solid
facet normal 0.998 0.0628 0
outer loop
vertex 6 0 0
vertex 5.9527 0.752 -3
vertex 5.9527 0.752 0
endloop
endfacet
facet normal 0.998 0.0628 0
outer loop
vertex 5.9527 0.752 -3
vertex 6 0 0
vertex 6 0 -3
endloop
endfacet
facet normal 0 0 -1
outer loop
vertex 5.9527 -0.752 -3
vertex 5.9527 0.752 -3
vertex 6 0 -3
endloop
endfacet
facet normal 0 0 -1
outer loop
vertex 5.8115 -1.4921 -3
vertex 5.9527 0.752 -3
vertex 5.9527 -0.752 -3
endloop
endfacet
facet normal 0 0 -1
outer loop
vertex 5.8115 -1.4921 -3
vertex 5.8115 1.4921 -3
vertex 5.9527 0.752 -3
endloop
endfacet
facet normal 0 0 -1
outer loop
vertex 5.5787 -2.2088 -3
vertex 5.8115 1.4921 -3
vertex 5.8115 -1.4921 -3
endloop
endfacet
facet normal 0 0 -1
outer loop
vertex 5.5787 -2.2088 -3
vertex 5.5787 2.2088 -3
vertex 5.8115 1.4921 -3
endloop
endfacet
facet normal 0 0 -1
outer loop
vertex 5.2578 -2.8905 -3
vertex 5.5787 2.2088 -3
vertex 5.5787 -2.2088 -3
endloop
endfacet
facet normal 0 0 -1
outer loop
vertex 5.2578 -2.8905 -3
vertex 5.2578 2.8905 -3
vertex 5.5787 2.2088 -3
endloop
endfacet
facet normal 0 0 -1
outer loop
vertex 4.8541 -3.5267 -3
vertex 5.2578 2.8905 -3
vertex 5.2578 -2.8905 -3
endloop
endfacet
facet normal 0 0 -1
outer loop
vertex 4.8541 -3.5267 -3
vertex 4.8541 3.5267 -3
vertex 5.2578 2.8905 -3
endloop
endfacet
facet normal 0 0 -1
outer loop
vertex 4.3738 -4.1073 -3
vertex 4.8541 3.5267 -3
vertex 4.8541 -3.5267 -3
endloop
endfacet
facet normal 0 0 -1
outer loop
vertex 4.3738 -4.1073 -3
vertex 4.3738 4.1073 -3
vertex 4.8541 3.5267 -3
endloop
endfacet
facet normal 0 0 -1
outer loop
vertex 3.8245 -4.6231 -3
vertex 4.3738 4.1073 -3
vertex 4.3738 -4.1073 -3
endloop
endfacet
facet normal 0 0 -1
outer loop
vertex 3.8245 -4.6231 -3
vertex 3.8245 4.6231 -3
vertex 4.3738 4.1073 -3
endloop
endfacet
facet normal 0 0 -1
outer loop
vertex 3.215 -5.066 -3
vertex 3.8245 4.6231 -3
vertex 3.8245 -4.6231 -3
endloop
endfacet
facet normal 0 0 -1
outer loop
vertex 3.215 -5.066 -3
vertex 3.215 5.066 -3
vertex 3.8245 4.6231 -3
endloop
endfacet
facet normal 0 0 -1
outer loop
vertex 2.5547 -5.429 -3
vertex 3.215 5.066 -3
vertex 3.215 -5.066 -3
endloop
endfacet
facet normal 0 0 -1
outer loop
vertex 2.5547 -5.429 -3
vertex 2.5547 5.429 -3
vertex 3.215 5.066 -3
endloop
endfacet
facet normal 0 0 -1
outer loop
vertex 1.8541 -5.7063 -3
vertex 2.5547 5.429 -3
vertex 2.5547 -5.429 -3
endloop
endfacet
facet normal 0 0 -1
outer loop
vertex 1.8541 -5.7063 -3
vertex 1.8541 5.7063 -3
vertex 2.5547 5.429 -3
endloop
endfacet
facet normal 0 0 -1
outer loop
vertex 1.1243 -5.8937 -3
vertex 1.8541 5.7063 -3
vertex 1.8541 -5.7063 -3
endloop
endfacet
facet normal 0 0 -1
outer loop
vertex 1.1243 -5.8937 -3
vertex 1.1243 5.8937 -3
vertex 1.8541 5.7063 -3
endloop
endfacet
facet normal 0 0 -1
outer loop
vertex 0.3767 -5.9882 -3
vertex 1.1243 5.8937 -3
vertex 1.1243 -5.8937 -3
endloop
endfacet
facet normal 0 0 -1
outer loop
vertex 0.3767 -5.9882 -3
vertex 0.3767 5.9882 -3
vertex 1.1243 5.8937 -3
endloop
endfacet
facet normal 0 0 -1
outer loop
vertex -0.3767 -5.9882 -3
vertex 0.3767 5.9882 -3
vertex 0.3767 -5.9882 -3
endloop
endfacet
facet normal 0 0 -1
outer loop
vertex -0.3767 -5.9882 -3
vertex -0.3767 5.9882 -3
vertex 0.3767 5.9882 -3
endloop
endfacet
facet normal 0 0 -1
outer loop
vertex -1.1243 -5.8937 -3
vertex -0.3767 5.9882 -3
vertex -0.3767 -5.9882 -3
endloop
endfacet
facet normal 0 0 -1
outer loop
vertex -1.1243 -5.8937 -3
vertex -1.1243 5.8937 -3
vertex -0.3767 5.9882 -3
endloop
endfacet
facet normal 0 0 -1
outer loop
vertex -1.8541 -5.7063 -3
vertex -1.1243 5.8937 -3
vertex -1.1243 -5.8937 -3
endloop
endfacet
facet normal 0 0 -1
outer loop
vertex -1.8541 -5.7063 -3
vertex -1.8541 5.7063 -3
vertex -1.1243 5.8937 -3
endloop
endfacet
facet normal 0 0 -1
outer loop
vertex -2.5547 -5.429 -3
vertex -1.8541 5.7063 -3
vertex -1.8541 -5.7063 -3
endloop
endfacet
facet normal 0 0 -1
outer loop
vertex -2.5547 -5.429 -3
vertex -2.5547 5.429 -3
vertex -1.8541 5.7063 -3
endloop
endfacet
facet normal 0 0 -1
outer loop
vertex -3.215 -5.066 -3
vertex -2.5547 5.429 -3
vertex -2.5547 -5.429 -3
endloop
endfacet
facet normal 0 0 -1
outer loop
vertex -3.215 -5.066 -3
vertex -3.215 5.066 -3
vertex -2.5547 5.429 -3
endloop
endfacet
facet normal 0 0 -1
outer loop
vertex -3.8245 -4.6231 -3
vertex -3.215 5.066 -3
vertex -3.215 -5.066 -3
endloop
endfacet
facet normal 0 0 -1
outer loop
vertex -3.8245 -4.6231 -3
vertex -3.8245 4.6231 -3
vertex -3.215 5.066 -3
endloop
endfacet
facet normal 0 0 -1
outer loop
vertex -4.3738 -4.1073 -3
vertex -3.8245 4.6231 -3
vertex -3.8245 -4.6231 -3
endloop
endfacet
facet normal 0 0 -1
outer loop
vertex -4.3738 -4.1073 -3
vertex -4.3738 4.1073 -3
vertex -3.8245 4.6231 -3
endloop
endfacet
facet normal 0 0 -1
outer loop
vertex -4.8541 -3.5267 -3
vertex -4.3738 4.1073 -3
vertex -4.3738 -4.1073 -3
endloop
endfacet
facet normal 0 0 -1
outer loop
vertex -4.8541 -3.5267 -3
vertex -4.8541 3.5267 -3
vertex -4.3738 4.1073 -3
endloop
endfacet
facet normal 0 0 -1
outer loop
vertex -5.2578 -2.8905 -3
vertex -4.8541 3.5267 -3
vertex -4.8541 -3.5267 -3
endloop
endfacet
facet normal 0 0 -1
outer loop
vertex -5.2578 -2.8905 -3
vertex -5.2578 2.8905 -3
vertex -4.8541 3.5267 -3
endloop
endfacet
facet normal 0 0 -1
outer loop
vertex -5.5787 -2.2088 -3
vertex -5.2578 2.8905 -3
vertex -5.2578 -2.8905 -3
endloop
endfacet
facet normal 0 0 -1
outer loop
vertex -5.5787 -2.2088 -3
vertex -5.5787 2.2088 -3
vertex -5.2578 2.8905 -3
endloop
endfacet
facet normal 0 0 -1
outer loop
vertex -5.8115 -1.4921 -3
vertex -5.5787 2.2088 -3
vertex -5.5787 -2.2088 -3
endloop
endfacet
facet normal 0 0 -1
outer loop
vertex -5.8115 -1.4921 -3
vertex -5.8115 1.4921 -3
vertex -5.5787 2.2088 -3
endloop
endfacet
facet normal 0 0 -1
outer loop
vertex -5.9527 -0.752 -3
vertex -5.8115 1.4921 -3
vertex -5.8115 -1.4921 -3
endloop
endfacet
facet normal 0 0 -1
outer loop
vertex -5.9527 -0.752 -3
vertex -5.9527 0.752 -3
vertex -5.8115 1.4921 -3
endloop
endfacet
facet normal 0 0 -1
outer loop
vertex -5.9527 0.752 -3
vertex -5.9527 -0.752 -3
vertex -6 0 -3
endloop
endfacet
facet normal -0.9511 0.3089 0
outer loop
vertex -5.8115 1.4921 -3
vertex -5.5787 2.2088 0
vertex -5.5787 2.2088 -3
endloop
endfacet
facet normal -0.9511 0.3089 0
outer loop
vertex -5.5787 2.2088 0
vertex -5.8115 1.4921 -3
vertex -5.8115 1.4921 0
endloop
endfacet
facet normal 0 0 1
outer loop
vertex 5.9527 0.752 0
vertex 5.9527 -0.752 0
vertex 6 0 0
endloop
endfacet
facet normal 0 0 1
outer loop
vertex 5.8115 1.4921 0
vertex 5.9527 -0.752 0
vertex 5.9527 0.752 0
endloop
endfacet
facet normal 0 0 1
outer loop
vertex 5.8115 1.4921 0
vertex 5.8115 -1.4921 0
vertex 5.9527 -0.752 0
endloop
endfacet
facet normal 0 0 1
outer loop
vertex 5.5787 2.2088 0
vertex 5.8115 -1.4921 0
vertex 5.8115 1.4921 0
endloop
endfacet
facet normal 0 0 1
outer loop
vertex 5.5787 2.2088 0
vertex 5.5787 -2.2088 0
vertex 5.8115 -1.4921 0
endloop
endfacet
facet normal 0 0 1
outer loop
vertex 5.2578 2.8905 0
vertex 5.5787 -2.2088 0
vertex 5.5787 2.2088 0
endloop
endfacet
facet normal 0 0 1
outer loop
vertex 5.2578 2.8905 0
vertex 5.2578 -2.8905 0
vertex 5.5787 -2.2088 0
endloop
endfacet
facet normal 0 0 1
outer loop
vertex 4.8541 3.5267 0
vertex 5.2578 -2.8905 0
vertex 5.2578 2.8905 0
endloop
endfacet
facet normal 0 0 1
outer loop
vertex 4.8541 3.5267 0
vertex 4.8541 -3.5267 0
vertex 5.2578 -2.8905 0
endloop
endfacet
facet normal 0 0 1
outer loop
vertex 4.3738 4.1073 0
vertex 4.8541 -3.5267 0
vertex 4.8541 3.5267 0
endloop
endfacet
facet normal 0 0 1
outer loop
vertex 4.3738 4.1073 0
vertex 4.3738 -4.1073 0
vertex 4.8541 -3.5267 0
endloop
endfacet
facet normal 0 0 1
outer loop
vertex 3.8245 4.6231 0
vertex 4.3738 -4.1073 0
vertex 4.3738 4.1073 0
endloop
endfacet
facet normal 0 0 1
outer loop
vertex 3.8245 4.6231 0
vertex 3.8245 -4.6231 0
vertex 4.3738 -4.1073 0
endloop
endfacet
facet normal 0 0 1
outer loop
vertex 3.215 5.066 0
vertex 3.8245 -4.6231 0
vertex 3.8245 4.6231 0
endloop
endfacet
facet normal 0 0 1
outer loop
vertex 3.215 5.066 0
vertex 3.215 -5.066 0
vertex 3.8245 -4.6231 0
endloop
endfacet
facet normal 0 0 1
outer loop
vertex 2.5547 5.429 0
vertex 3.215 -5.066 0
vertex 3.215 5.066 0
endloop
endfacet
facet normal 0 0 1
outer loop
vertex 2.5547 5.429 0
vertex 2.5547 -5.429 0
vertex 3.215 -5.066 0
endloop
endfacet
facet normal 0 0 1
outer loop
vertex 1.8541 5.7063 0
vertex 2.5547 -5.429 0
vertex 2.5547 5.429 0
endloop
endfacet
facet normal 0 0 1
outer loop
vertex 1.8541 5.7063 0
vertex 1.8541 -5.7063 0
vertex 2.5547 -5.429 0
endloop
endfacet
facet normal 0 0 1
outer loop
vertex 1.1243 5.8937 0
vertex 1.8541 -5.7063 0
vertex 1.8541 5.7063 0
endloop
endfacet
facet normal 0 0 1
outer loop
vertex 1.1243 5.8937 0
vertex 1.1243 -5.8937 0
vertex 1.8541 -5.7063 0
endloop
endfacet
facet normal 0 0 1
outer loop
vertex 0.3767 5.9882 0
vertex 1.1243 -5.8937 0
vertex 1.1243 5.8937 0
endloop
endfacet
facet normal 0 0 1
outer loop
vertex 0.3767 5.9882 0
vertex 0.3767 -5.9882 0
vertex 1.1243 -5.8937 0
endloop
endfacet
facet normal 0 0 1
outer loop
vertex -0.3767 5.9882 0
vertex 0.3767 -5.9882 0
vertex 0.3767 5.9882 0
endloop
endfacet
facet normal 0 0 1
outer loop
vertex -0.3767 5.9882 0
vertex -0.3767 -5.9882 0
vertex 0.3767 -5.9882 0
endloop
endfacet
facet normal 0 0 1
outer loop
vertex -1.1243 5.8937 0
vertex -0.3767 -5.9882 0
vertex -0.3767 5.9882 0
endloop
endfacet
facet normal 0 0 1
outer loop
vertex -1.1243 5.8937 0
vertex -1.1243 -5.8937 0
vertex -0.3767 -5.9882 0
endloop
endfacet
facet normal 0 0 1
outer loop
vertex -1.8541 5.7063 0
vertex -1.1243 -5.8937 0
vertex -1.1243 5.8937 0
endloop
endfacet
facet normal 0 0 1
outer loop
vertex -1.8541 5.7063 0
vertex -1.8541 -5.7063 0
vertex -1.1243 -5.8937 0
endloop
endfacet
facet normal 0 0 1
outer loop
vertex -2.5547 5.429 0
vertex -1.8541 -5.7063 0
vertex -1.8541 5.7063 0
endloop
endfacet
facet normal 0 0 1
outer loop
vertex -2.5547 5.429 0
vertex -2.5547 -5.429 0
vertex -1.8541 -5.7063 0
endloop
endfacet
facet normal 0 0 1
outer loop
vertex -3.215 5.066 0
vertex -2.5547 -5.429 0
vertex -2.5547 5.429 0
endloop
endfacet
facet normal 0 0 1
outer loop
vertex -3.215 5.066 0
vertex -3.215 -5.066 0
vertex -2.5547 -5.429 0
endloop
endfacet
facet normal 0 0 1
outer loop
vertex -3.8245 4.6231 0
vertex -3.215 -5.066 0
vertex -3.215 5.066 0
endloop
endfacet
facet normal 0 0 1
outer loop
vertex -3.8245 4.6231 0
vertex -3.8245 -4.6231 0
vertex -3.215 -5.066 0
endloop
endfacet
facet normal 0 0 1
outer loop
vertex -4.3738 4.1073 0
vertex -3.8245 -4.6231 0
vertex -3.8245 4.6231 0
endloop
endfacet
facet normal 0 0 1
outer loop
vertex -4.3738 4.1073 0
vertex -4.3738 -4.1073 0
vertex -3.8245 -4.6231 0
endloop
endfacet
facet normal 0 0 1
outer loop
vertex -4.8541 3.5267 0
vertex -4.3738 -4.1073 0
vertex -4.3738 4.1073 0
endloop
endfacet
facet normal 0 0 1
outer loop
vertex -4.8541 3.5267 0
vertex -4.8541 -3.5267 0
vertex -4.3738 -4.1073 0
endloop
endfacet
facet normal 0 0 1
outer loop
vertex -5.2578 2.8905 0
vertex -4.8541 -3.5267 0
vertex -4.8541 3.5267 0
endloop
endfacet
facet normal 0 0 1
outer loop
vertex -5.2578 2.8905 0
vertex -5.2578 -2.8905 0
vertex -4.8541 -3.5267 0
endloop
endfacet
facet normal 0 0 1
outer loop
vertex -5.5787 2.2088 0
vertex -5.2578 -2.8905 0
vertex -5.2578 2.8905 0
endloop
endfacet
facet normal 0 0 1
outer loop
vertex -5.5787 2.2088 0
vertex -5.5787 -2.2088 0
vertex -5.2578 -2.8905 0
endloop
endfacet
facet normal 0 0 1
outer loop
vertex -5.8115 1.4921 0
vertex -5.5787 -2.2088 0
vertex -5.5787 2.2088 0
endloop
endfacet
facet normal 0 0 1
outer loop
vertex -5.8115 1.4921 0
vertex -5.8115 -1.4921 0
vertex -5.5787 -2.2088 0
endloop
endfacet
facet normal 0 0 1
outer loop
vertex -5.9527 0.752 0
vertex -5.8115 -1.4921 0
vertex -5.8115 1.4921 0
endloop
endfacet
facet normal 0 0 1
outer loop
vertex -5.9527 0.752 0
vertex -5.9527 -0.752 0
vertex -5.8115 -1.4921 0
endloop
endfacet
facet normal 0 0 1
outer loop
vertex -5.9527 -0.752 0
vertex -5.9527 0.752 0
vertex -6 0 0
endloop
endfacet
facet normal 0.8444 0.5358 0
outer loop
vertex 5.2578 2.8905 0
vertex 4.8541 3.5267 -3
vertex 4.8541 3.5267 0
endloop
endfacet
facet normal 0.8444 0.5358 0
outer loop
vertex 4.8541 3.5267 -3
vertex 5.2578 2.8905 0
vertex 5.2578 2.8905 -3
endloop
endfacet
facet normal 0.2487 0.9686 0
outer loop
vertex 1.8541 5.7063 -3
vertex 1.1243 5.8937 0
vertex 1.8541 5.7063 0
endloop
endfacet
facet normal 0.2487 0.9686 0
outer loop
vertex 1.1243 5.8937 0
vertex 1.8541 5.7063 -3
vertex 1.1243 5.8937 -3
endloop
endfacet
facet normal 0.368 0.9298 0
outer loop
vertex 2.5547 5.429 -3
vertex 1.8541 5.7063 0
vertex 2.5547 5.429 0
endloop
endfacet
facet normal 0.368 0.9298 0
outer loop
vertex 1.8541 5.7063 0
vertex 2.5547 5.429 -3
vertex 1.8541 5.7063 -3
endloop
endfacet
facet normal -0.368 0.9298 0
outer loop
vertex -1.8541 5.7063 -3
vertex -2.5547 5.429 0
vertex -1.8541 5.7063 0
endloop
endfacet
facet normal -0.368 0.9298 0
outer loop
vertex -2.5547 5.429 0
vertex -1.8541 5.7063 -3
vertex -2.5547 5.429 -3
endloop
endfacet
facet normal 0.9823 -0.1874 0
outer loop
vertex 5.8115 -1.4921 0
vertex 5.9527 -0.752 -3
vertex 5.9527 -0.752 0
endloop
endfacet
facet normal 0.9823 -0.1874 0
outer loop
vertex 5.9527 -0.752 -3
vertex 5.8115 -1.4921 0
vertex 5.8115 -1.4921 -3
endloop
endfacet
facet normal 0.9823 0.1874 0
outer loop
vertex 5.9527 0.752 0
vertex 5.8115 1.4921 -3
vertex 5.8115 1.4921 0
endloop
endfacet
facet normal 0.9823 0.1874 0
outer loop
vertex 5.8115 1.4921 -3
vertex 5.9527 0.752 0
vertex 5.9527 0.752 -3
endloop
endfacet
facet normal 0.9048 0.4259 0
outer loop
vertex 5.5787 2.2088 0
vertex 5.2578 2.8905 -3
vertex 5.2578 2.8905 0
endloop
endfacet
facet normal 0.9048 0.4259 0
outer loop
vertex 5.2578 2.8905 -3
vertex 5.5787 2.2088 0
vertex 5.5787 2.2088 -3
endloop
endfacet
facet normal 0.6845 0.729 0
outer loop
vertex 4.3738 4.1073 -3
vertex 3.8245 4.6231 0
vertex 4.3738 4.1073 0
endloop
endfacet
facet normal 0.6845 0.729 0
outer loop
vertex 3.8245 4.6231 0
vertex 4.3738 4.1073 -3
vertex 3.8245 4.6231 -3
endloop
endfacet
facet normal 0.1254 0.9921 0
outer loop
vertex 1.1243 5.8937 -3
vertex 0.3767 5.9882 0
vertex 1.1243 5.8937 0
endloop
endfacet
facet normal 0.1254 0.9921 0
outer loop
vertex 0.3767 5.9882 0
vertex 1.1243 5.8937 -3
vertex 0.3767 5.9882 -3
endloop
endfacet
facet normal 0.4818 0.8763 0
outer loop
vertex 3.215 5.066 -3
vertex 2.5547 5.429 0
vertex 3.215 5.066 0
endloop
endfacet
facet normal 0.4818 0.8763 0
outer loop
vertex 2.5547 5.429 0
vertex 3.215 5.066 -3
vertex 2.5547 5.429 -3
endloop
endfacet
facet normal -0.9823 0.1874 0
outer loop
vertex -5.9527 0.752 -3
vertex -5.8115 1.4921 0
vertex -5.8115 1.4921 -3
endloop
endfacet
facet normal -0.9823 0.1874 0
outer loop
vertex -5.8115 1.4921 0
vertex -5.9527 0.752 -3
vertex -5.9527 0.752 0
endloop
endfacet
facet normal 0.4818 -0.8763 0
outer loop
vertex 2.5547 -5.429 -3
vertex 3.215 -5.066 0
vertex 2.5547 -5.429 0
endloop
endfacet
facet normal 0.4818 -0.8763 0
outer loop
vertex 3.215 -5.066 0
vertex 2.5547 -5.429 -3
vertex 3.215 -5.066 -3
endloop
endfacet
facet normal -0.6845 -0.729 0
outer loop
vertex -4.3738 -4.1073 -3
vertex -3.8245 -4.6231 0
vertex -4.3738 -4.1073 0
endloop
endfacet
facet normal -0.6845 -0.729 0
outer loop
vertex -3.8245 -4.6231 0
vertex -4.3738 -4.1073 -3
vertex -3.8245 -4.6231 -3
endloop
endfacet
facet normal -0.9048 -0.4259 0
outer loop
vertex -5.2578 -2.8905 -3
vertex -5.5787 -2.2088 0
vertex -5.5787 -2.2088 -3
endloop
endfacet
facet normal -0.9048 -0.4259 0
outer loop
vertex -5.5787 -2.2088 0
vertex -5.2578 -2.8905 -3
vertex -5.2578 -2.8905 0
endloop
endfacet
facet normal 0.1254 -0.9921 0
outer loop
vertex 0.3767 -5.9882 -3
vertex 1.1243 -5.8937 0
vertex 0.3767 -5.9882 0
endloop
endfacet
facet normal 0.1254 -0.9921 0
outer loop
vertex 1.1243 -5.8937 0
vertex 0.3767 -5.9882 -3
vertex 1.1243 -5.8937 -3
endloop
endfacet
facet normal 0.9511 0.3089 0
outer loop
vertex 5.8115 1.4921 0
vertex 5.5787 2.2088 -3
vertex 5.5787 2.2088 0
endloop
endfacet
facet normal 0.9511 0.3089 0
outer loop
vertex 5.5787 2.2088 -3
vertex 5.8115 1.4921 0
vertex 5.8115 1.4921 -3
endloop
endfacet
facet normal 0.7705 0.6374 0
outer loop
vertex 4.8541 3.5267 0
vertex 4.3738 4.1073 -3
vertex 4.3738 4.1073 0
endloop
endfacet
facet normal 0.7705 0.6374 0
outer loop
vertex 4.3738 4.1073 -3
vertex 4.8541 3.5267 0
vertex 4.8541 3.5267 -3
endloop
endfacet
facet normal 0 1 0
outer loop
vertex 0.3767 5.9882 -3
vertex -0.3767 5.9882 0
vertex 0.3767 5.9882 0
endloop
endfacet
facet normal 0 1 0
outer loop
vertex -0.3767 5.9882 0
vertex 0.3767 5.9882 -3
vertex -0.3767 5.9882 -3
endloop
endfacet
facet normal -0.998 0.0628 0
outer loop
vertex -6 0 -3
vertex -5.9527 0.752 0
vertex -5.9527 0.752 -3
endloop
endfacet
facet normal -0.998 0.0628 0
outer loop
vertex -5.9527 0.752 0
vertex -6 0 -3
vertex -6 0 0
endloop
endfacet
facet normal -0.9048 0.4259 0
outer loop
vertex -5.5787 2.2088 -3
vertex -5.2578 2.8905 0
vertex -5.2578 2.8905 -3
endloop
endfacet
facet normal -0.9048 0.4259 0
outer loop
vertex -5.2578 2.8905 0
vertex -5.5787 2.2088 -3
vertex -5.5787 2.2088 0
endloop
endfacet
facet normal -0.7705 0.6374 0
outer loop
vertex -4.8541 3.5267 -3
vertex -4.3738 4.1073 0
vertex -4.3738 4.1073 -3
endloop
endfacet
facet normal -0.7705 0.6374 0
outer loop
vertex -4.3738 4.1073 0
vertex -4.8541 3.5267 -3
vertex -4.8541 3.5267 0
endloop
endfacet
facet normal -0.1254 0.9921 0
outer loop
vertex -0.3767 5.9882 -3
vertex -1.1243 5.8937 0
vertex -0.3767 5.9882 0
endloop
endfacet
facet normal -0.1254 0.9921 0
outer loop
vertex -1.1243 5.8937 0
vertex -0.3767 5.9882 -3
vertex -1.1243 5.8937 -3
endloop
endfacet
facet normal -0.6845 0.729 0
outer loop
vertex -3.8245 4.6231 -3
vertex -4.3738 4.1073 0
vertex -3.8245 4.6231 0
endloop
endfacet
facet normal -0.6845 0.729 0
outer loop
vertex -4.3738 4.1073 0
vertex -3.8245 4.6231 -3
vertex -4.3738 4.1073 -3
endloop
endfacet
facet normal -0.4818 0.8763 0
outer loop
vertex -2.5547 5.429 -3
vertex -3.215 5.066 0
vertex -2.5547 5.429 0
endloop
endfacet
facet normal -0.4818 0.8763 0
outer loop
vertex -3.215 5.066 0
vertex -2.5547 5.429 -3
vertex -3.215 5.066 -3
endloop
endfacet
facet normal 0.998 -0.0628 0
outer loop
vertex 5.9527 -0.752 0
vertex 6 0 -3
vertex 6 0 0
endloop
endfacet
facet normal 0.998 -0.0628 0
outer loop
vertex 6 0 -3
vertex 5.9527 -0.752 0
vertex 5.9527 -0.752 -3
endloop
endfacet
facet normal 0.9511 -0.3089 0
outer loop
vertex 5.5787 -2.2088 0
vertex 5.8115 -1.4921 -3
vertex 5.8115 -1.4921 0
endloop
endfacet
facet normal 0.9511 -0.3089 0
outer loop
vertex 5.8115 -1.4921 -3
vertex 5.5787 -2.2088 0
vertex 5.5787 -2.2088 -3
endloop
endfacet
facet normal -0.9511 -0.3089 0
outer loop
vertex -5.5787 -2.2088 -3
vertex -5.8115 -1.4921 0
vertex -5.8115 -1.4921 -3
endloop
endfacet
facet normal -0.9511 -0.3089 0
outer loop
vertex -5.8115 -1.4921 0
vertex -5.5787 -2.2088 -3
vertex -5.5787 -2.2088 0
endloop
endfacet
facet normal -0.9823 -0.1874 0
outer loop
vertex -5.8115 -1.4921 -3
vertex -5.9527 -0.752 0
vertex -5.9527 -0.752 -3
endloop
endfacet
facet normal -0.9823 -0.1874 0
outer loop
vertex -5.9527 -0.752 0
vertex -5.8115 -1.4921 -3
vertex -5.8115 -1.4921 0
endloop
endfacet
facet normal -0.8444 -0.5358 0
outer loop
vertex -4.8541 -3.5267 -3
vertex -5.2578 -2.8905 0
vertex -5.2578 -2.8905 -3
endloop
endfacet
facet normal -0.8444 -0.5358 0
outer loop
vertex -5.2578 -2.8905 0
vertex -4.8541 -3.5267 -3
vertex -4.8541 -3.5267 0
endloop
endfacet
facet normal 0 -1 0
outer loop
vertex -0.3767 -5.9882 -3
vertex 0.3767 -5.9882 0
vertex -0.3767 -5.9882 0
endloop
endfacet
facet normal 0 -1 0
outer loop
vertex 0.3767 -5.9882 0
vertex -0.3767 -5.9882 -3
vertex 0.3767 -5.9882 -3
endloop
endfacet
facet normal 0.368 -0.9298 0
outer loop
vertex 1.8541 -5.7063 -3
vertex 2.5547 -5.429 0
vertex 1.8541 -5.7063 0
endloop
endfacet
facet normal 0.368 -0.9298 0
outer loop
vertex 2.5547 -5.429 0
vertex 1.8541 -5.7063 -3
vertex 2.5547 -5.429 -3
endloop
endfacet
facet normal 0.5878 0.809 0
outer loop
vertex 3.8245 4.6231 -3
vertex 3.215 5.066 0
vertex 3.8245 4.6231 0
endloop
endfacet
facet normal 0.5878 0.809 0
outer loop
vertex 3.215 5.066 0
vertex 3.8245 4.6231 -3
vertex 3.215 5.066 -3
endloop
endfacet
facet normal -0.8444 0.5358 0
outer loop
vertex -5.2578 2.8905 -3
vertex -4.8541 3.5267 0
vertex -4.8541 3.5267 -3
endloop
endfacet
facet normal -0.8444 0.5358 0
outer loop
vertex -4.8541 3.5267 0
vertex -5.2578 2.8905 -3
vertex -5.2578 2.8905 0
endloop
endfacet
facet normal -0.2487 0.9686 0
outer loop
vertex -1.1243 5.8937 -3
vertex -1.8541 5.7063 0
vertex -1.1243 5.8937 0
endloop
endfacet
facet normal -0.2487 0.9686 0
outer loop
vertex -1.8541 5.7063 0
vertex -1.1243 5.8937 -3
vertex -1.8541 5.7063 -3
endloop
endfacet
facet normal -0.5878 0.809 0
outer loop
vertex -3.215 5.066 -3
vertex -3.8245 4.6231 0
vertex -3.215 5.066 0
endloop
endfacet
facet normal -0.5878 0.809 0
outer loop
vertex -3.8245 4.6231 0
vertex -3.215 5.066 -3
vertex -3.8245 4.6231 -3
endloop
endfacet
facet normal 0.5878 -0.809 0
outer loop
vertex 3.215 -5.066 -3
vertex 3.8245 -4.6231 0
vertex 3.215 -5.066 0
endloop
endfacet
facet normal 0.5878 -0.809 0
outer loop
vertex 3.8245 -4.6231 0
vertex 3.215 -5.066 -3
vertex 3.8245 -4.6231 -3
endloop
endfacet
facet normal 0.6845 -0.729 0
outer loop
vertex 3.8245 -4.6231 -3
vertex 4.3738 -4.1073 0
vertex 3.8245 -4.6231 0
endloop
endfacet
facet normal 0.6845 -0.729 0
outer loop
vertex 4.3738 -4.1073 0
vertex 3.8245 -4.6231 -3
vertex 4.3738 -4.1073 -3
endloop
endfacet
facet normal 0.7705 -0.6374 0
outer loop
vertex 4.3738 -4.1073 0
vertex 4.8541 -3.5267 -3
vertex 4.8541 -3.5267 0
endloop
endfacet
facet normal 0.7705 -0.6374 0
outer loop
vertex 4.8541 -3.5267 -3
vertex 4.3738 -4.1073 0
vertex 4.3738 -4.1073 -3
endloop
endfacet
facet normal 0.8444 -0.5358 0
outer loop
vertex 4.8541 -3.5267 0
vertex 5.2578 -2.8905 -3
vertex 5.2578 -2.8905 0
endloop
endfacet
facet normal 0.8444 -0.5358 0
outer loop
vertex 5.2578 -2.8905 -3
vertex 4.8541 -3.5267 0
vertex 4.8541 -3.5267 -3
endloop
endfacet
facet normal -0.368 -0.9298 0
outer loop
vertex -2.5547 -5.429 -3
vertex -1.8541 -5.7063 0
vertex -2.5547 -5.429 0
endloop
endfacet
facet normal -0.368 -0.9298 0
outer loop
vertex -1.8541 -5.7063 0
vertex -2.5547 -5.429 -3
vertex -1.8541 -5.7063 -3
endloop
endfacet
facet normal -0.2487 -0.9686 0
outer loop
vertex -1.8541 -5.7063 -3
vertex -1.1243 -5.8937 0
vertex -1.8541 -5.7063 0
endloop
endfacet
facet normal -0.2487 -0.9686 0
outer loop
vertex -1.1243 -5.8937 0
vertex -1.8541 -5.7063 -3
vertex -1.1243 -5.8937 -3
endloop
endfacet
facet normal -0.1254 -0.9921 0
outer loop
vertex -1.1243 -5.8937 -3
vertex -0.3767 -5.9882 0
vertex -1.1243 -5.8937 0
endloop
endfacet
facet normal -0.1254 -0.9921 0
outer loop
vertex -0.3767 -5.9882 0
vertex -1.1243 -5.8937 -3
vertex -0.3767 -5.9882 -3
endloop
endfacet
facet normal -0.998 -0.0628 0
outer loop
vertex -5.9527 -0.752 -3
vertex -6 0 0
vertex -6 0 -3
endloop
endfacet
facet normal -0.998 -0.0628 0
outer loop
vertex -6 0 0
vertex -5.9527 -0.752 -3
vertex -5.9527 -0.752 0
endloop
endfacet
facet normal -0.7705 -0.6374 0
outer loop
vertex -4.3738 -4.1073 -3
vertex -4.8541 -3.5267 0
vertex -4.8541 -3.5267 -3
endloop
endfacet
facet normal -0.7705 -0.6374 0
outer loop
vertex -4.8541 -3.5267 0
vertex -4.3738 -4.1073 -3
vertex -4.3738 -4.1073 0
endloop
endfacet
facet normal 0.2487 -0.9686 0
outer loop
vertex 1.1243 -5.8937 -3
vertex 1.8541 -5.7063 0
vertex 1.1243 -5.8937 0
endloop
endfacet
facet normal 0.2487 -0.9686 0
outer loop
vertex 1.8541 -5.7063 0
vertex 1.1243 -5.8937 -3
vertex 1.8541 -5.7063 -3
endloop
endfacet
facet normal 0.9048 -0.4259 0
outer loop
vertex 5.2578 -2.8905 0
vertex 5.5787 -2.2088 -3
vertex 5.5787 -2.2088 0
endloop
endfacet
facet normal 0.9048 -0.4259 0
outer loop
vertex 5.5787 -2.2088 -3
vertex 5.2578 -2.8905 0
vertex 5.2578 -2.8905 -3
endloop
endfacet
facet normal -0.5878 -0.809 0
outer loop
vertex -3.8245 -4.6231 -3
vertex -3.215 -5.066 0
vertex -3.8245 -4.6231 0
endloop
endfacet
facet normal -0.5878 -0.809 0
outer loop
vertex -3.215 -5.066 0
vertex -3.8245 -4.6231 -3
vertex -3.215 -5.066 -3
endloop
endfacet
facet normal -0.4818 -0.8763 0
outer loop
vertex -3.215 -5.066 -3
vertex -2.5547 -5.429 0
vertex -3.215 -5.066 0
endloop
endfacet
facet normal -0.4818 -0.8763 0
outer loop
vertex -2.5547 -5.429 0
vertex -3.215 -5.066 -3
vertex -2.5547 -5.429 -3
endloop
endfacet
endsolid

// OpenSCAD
$fn = 50;


difference() {
	union() {
		translate(v = [0, 0, -3.0000000000]) {
			cylinder(h = 3, r = 6.0000000000);
		}
	}
	union();
}
